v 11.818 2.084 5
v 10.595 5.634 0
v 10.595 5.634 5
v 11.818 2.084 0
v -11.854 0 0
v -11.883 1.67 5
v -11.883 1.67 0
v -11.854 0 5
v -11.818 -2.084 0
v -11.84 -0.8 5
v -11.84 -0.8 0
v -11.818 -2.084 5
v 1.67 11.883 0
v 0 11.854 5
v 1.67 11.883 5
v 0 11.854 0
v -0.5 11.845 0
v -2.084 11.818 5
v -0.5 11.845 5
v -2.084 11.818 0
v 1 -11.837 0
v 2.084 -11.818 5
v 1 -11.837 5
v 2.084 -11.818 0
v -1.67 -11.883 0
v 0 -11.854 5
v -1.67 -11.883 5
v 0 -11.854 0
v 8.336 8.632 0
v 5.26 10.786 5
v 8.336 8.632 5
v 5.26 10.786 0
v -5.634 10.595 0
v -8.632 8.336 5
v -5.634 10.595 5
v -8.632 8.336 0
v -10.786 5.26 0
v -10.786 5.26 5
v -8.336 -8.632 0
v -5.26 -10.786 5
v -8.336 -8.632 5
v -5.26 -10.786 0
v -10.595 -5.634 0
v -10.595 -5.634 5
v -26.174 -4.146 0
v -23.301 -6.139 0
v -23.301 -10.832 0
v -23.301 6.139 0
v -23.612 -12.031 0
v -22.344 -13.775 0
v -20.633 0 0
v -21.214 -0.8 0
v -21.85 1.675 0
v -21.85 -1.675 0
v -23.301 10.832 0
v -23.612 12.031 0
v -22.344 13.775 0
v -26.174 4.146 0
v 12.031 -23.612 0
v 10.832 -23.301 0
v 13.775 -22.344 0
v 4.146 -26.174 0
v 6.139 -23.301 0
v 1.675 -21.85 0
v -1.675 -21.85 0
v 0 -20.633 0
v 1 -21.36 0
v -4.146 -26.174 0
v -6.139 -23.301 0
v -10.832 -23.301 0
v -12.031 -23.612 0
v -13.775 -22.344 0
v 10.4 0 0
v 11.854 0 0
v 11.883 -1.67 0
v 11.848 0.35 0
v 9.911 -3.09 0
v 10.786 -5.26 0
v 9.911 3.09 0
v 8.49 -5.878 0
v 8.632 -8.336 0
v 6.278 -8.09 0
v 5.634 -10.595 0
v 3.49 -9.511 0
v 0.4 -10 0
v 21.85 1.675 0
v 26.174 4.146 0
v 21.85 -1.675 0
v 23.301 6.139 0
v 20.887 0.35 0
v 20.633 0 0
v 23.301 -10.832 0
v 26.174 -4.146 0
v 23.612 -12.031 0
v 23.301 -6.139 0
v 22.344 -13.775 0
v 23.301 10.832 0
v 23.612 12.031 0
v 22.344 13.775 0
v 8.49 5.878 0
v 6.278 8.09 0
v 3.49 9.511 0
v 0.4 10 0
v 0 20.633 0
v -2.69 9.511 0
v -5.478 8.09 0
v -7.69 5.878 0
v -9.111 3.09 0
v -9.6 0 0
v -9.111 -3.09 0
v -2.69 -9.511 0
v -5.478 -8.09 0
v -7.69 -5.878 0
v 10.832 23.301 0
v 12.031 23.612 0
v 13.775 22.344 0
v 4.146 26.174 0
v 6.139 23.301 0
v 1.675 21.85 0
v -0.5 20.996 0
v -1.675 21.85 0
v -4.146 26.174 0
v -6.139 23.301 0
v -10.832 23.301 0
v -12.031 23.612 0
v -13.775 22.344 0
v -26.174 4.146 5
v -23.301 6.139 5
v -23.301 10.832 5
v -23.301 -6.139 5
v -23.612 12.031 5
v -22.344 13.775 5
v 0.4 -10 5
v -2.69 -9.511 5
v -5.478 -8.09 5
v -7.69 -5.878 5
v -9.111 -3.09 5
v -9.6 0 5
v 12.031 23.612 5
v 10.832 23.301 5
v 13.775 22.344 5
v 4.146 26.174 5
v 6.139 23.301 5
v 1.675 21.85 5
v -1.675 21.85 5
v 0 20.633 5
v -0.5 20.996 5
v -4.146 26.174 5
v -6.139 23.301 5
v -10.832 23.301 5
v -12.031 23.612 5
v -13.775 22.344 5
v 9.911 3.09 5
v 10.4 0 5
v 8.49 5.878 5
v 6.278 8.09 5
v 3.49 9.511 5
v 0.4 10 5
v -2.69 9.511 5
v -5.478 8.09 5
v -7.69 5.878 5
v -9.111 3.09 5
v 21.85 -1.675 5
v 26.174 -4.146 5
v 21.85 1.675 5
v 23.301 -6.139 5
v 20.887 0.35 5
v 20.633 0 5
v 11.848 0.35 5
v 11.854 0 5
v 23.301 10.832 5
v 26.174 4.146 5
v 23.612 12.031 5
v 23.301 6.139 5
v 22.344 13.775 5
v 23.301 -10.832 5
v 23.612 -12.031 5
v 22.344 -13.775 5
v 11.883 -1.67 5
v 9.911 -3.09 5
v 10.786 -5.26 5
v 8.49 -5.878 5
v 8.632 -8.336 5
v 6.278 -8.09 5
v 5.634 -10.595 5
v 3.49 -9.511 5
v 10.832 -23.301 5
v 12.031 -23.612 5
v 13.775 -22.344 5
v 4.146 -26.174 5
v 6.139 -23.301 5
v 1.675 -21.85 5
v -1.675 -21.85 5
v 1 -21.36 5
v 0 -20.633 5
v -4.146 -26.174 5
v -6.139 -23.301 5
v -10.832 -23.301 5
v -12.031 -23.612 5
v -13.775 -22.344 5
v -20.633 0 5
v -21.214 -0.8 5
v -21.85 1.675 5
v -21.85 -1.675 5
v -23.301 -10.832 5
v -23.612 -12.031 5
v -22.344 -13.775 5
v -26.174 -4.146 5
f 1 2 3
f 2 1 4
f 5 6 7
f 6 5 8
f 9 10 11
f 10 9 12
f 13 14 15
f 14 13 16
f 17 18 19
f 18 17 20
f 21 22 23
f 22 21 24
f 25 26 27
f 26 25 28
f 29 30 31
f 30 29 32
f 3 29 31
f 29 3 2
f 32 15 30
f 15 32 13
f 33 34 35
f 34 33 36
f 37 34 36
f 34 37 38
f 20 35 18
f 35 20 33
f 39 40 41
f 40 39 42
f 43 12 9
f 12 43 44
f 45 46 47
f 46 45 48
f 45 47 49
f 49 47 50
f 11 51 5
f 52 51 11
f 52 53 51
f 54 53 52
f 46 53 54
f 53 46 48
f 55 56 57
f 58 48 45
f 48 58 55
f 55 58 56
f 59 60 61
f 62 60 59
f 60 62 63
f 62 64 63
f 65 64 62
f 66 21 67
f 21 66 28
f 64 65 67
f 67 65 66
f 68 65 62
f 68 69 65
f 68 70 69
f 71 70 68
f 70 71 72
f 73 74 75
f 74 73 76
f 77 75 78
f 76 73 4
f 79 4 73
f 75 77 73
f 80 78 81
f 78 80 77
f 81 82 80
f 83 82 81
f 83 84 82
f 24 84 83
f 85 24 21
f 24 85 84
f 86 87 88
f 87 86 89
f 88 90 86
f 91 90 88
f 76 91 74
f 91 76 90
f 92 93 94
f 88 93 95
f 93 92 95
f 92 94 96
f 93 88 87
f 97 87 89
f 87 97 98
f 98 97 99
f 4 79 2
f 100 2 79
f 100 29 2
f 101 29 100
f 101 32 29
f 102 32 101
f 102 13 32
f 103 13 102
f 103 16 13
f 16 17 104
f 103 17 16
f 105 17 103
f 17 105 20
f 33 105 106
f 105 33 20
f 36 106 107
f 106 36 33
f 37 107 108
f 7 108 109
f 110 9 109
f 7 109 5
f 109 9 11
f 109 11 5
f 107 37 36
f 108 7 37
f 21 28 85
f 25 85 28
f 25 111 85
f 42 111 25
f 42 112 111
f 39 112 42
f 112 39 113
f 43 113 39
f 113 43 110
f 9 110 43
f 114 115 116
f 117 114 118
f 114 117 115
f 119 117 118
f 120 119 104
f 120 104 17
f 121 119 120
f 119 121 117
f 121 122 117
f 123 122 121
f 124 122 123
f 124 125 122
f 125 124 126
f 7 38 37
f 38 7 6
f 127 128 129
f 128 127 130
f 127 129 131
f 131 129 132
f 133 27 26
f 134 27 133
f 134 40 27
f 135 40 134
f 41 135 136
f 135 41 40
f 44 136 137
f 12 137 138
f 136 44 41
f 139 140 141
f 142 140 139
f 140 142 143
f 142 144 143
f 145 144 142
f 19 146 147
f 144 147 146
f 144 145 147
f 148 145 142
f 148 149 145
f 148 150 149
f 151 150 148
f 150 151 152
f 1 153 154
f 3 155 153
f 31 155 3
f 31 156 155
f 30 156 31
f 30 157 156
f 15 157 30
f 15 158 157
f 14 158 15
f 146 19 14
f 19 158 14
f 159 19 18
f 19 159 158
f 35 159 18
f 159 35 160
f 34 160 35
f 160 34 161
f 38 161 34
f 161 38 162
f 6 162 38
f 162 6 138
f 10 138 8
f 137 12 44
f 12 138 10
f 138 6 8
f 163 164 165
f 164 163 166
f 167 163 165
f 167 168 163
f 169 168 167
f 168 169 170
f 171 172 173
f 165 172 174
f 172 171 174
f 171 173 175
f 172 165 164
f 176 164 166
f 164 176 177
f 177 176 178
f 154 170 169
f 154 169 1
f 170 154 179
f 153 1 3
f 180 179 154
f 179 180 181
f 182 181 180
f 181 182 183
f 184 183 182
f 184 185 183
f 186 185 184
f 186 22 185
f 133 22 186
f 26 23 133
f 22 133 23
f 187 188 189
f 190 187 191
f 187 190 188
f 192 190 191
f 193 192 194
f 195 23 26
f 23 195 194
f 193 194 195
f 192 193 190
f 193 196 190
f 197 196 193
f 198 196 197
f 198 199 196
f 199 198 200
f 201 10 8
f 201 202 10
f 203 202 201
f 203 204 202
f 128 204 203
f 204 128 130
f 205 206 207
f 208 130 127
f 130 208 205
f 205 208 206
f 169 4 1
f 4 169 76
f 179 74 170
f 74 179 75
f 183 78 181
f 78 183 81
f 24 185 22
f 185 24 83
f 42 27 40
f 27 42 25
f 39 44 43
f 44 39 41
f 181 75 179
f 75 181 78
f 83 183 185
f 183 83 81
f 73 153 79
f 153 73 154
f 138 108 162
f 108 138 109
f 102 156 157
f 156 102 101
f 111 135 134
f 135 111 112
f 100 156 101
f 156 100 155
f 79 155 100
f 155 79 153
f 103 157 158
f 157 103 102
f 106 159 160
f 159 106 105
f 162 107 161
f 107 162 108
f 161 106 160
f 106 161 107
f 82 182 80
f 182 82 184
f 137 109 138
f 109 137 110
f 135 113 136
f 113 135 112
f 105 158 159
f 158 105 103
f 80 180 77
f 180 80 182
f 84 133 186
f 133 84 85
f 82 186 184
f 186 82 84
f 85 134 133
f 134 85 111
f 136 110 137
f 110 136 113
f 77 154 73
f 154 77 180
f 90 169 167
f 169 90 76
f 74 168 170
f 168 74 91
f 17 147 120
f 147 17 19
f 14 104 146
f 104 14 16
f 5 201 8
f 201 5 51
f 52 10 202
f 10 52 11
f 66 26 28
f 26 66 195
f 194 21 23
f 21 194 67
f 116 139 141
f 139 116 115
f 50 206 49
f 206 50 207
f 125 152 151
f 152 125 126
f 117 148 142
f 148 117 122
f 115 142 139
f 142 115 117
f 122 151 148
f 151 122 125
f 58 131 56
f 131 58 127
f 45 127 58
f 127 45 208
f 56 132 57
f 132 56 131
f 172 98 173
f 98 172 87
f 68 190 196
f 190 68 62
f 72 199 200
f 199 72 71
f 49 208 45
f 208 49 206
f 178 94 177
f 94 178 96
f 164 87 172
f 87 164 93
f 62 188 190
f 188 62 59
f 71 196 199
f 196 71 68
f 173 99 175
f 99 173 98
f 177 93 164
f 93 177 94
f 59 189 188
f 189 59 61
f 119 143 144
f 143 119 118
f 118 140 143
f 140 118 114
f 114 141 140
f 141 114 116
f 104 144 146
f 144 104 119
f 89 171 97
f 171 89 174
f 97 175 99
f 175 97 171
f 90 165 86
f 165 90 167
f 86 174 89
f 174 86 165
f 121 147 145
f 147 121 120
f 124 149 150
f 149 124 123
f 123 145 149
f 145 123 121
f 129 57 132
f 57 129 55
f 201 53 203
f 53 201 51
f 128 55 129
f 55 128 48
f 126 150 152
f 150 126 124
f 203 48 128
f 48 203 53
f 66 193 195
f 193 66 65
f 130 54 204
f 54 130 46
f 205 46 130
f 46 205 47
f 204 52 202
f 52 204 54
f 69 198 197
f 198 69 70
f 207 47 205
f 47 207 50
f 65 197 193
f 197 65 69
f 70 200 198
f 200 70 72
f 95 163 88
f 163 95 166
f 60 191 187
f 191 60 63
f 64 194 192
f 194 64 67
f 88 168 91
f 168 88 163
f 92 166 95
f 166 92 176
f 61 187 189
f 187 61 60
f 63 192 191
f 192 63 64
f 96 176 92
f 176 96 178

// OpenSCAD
// 5@xes Thin Part Test for Cura 5.0 test 2022 Rought
// Thichness 
//   - 0.35
//   - 0.5
//   - 0.8
//   - 1

$fn=20;

union () {
    translate([11,0,0]) cube([15,0.35,5], center = false);
    translate([0,11,0]) rotate(90, [0,0,1]) cube([15,0.5,5], center = false);
    translate([-11,0,0]) rotate(180, [0,0,1]) cube([15,0.8,5], center = false);
    translate([0,-11,0]) rotate(-90, [0,0,1]) cube([15,1,5], center = false);
    difference() {
        rotate([0,0,10]) cylinder(r=12, h=5);
        translate([0.4,0,-1]) cylinder(r=10, h=10);
    }
}

union () {
    rotate([0,0,45]) difference() {
        cylinder(r=26.5, h=5);
        translate([12,0,-1]) cylinder(r=15, h=10);
        translate([0,12,-1]) cylinder(r=15, h=10);
        translate([-12,0,-1]) cylinder(r=15, h=10);
        translate([0,-12,-1]) cylinder(r=15, h=10);
    }
}
